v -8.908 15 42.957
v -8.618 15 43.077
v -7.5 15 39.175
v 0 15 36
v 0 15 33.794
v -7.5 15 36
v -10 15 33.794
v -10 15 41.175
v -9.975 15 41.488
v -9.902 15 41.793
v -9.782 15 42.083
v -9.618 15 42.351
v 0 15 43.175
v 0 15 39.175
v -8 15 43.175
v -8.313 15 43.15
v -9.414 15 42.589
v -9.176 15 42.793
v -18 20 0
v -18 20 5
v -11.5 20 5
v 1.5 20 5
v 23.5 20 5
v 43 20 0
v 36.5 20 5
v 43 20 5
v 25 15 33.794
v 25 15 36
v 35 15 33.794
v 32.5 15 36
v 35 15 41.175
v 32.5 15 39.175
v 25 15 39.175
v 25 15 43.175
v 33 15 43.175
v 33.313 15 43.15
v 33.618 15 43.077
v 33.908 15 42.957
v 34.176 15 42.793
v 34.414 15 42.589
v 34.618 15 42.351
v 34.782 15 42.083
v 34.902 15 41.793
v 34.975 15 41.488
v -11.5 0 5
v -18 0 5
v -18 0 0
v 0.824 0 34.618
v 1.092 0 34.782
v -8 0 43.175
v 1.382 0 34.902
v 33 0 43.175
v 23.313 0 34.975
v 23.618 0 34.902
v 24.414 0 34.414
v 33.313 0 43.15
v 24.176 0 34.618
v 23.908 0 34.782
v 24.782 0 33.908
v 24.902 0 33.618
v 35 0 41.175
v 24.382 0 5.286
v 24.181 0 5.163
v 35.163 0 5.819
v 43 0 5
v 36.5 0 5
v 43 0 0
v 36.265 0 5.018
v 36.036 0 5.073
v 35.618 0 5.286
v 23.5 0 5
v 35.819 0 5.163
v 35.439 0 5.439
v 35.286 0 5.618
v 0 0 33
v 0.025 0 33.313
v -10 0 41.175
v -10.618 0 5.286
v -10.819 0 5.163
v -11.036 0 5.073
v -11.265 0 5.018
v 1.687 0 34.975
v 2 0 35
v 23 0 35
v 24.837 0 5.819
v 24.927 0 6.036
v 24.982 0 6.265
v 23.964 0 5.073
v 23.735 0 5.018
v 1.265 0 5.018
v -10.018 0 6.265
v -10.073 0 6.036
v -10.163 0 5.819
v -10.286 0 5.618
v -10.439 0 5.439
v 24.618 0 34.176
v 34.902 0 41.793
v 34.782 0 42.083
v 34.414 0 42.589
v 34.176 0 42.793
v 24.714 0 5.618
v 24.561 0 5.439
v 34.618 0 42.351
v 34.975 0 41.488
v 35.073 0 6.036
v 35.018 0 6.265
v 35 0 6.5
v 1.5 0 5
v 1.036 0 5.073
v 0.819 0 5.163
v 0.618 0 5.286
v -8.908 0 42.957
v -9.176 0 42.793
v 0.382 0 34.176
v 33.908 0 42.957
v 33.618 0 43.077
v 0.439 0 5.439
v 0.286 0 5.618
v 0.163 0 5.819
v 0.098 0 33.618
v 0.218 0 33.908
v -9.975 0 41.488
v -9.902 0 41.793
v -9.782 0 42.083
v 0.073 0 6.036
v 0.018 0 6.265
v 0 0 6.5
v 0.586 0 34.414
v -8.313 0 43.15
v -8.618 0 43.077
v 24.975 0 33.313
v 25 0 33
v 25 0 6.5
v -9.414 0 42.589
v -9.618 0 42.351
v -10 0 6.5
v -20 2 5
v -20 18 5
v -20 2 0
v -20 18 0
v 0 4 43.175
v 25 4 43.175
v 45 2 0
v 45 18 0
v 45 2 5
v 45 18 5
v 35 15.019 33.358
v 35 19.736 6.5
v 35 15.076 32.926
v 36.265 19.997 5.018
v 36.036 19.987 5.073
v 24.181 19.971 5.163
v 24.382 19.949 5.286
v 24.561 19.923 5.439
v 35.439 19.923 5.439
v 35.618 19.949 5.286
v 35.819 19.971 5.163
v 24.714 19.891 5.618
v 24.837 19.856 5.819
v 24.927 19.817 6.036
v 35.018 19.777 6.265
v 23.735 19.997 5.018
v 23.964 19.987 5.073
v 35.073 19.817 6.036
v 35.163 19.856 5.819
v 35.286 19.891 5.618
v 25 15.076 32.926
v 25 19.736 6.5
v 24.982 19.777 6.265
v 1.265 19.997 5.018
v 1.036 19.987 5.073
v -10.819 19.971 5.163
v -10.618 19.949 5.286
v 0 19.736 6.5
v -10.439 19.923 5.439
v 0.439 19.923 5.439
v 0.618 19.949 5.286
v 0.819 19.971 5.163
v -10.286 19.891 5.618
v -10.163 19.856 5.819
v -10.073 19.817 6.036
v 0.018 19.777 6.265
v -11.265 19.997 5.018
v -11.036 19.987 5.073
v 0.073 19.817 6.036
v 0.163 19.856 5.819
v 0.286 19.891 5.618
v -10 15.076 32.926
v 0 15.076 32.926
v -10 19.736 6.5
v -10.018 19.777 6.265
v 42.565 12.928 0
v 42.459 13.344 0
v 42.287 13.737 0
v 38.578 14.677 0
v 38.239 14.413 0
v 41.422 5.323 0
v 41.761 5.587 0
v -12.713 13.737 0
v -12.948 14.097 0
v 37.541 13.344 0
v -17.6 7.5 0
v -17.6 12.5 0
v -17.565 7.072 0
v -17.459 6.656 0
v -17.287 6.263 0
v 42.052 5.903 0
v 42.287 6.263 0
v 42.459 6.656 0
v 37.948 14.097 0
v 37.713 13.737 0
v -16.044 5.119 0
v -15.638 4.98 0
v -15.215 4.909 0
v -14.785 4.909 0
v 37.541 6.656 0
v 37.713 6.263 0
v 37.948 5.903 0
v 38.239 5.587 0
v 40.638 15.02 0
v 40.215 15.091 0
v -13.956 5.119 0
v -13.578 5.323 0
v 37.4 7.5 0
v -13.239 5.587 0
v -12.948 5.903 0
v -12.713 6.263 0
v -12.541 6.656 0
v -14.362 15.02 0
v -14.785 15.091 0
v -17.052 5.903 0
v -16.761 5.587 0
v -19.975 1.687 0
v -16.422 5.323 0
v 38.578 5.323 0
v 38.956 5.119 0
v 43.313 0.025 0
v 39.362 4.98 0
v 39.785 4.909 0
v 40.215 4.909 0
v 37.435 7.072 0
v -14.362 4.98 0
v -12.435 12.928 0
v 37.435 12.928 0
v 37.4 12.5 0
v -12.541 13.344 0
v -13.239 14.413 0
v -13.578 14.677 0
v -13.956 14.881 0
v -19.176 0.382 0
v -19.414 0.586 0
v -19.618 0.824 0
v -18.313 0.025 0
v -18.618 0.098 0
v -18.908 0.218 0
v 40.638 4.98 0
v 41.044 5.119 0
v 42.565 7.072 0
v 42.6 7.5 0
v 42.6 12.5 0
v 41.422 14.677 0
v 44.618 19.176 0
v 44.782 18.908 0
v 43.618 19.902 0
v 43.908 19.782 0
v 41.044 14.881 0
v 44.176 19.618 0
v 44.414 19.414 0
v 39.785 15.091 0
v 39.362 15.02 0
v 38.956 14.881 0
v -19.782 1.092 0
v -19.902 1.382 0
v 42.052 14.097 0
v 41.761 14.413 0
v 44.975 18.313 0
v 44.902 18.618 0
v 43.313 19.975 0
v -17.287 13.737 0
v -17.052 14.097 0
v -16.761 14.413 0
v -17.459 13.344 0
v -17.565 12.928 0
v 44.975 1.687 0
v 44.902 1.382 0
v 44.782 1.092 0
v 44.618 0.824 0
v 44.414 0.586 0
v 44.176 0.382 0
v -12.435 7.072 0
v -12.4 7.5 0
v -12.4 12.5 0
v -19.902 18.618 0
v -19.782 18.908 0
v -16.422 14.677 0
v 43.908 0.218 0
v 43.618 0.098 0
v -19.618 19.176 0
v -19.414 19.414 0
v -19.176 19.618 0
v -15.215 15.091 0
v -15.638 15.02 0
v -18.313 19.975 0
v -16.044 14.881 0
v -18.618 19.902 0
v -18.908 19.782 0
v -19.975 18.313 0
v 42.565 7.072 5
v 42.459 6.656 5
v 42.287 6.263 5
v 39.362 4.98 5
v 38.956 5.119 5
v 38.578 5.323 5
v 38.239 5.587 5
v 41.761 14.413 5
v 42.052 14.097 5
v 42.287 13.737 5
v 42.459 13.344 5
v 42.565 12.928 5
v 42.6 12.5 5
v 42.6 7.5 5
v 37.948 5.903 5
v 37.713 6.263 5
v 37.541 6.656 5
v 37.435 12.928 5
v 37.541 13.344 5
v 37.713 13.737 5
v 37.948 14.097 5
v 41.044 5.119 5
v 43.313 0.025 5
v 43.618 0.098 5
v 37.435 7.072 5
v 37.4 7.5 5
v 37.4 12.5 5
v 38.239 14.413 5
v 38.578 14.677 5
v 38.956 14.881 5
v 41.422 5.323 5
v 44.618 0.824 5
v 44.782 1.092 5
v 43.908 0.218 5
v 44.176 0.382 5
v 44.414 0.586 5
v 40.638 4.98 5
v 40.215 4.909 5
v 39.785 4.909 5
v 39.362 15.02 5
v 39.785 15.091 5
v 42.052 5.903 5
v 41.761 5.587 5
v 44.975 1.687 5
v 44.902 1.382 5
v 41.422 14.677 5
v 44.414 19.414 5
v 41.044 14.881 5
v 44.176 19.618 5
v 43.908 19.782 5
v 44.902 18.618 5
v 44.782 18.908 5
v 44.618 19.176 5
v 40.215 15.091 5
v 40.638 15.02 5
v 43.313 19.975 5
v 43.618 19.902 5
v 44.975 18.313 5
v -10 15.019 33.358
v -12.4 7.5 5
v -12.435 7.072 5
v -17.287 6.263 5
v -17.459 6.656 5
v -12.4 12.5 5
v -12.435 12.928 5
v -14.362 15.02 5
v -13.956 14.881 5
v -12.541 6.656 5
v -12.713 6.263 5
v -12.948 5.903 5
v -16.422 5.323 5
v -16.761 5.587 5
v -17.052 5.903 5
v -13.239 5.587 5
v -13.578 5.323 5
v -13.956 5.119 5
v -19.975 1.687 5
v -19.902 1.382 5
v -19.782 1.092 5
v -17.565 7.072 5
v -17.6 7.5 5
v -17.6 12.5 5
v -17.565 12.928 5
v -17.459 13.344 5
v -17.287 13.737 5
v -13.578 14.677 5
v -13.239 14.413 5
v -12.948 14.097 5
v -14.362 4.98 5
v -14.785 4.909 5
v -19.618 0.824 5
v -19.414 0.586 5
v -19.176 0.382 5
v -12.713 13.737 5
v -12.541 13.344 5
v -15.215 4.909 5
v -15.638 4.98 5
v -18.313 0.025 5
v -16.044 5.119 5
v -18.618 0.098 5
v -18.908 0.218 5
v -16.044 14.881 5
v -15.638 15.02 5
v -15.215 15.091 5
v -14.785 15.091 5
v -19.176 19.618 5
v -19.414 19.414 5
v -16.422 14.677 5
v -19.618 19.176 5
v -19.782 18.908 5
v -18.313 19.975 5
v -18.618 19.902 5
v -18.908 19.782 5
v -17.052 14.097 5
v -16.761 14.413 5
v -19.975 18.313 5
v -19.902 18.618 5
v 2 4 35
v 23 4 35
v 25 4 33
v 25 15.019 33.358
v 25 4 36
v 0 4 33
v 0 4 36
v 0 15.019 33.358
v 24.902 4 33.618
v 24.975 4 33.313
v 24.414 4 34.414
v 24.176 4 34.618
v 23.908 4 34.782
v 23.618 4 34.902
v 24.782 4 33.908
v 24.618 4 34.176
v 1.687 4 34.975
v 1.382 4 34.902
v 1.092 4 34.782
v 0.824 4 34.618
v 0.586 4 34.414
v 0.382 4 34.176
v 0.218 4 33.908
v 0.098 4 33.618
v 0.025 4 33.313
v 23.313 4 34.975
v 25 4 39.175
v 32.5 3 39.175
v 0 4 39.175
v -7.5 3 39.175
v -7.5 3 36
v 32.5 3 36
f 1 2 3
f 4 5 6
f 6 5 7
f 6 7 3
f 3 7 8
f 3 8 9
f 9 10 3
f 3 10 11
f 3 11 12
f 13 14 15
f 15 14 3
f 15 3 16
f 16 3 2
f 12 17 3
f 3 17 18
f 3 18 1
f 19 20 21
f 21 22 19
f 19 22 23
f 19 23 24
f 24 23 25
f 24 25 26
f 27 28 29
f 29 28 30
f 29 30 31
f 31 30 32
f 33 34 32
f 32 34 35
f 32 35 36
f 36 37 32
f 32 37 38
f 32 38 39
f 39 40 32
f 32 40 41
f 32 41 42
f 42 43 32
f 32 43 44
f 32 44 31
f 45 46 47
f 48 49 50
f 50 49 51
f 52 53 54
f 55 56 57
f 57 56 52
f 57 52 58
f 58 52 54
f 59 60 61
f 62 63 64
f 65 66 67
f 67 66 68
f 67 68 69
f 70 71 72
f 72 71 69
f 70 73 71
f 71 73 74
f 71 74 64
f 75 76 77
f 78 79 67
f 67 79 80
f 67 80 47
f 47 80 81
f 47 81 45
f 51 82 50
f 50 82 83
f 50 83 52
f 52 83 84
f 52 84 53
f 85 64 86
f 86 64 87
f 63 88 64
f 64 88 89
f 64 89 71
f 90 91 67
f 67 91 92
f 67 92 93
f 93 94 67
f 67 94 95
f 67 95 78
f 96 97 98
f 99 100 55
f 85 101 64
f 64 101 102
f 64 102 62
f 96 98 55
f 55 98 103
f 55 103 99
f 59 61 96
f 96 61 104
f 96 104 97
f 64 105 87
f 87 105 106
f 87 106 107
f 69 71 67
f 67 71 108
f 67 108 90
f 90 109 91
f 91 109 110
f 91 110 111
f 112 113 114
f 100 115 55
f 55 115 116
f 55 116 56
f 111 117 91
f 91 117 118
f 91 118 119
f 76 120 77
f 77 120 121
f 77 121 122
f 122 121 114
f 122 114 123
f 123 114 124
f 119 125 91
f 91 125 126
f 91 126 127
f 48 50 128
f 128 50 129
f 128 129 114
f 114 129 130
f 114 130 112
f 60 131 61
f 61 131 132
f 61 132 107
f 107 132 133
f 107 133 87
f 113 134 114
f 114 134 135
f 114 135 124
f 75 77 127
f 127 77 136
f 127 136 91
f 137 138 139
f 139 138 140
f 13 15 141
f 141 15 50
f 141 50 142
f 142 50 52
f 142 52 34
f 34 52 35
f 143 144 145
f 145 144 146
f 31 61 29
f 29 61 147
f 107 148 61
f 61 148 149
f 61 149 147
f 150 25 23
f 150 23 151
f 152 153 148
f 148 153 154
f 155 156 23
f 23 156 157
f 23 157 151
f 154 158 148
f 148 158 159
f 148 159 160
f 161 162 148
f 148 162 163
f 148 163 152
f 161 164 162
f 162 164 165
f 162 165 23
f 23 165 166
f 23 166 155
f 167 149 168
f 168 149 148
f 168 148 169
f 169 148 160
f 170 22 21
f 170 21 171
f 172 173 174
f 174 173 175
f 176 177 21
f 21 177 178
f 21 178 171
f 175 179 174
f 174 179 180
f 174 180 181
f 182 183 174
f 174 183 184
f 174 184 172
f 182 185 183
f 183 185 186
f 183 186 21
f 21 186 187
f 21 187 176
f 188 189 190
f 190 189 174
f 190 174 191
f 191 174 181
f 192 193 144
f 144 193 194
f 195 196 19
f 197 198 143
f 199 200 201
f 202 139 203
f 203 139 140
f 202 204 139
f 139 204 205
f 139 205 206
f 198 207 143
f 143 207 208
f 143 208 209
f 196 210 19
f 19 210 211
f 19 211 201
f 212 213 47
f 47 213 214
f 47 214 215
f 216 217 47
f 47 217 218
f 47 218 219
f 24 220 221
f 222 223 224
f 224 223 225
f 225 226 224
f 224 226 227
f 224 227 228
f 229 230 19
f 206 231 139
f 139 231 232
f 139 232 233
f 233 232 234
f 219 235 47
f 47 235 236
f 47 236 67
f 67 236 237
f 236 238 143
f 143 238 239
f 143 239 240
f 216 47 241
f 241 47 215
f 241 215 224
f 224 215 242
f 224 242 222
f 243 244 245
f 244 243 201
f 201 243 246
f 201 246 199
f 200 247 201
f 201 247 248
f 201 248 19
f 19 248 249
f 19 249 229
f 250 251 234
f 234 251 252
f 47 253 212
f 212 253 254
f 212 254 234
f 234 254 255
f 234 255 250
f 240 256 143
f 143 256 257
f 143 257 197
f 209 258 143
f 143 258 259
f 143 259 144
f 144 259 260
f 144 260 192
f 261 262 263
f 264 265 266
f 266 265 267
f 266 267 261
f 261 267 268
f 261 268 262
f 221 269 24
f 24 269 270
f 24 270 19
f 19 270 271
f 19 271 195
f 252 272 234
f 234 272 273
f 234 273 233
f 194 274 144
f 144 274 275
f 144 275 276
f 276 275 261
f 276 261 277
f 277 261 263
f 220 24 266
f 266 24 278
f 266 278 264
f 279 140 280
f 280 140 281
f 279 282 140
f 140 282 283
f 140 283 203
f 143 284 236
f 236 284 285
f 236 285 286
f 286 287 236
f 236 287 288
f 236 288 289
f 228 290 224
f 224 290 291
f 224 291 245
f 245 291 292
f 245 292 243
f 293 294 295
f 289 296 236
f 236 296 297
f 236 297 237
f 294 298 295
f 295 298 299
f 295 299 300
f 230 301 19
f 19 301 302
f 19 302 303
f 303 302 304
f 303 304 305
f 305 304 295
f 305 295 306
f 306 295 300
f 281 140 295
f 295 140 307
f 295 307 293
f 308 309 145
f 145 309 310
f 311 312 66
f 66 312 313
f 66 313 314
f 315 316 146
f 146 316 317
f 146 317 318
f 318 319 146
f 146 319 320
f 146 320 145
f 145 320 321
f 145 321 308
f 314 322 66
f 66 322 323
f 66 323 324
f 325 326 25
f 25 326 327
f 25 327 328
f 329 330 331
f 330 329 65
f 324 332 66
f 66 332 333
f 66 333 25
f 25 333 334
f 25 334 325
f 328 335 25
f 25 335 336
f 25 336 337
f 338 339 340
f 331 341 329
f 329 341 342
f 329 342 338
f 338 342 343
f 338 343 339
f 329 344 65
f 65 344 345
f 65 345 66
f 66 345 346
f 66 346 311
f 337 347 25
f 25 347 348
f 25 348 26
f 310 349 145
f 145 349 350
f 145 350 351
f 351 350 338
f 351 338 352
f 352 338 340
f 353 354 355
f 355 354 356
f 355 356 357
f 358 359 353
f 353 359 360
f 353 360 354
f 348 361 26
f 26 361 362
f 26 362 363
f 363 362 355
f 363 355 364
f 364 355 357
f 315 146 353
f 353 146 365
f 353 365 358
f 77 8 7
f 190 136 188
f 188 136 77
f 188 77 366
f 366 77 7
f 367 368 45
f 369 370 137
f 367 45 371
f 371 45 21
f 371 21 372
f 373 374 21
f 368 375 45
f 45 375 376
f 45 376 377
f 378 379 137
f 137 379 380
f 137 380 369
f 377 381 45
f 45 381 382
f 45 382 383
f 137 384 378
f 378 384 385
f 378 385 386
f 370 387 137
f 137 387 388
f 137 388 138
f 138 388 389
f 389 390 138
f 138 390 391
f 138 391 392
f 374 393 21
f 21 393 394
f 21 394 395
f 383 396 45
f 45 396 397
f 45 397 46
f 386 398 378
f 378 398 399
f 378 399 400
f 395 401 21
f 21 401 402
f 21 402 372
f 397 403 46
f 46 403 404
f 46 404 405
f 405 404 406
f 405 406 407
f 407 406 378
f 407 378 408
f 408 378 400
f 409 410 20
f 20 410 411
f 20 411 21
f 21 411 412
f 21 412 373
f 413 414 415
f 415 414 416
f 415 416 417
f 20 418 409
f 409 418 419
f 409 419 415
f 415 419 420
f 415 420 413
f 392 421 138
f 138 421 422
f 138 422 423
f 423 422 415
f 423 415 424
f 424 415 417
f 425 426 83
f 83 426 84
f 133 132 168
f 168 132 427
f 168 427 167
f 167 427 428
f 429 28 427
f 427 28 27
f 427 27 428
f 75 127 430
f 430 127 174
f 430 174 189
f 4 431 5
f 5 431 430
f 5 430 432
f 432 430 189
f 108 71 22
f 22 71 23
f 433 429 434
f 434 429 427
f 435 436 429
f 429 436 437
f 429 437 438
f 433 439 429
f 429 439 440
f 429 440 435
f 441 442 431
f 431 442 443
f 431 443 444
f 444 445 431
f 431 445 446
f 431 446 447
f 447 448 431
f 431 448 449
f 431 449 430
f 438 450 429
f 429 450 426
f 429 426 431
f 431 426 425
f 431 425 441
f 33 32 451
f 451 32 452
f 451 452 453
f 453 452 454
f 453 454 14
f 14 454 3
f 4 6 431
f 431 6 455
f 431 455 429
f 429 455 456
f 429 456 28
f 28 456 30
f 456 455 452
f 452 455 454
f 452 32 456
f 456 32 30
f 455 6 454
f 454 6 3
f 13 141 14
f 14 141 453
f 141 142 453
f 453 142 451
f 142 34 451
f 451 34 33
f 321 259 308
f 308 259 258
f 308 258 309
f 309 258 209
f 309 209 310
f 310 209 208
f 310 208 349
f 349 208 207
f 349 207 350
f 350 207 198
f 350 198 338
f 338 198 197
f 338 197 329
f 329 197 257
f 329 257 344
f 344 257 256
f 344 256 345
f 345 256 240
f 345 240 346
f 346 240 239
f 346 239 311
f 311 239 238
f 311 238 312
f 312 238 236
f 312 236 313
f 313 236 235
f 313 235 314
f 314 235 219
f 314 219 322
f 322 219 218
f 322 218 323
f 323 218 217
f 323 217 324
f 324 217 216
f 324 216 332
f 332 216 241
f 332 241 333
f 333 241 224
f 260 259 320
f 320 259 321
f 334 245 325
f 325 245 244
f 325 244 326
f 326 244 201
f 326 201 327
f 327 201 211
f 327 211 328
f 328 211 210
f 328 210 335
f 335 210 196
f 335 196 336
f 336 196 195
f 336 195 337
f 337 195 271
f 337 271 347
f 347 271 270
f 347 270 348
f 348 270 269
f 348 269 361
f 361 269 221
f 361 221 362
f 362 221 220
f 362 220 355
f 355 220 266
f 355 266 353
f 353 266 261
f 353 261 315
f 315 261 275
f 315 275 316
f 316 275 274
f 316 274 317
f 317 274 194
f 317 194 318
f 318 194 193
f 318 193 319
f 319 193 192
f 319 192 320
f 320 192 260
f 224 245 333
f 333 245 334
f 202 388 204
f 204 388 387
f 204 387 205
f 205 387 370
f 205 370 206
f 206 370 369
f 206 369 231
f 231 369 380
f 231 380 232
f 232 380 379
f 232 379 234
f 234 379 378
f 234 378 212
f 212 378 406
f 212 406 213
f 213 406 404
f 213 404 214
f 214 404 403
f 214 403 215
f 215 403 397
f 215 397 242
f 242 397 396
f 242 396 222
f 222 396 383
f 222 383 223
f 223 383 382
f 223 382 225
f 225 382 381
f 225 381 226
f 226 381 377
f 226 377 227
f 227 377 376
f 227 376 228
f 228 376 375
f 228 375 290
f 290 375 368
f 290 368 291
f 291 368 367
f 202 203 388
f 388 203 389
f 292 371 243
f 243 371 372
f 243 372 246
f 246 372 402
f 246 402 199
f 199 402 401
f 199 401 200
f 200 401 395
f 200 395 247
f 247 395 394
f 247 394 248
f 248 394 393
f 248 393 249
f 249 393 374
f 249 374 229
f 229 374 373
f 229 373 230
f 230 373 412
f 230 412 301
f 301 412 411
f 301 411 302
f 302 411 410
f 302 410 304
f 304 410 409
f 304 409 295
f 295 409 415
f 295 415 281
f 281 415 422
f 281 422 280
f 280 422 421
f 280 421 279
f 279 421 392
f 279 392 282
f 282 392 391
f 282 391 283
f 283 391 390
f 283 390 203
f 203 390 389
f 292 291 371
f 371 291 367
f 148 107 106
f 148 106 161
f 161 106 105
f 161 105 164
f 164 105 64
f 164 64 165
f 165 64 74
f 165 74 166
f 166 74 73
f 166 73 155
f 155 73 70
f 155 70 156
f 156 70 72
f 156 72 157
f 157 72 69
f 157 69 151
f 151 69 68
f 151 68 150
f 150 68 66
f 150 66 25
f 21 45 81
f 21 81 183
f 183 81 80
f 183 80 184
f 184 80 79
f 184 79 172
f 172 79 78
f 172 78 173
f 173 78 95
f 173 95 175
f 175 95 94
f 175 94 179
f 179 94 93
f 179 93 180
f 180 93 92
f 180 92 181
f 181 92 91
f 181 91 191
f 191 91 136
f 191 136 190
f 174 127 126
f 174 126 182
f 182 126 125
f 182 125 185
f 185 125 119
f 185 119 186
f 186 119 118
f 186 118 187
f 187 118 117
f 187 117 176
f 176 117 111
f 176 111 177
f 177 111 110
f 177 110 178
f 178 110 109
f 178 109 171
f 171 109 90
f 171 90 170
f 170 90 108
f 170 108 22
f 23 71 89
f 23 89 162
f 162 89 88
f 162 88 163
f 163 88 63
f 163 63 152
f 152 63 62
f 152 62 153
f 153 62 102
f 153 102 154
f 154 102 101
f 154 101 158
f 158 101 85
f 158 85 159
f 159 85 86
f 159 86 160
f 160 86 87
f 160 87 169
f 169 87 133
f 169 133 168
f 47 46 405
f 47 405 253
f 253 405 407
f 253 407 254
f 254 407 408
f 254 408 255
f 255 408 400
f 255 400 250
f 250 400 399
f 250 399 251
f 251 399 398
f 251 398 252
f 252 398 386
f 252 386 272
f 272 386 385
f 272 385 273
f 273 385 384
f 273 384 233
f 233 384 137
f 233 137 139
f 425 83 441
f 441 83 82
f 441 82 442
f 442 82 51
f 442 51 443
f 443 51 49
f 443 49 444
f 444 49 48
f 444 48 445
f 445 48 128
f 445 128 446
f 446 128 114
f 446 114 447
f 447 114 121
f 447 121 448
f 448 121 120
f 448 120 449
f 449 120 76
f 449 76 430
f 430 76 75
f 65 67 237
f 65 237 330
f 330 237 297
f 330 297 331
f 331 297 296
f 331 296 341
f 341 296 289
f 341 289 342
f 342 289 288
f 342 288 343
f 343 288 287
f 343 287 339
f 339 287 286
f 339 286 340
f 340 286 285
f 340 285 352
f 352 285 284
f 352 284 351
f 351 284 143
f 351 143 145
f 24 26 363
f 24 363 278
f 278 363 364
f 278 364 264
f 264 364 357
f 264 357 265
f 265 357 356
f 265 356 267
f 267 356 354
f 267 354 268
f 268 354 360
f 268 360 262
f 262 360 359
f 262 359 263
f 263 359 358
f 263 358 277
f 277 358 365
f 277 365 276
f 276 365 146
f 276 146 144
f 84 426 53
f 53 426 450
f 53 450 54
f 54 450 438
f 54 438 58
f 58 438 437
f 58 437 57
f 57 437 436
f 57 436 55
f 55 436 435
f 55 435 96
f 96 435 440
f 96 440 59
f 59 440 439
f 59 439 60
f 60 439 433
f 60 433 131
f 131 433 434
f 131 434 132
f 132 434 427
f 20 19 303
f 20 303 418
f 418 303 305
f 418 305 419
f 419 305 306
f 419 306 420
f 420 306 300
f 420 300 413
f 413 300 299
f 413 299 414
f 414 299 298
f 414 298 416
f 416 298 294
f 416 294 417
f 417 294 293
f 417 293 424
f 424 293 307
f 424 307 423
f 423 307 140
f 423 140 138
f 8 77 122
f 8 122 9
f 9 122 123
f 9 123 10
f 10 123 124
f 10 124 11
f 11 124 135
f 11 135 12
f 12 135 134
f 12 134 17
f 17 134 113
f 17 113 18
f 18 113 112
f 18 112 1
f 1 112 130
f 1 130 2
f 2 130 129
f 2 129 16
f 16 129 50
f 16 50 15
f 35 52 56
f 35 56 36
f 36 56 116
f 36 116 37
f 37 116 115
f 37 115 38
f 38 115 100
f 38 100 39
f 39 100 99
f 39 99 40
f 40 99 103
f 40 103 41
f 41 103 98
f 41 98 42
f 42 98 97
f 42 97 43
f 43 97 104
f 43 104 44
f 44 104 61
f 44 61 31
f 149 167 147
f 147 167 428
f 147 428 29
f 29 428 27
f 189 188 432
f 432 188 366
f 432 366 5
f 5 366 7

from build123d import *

# Parameters (mm, degrees)
BOSS_EXTRUDE1_DEPTH = 35
CUT_EXTRUDE1_DEPTH  = 25
SKETCH3_W           = 25
SKETCH3_H           = 28.356409098
BOSS_EXTRUDE2_DEPTH = 5
BOSS_EXTRUDE3_DEPTH = 10
SKETCH5_W           = 28.356409098
SKETCH5_H           = 20
BOSS_EXTRUDE4_DEPTH = 10
SKETCH6_W           = 55
SKETCH6_H           = 15
BOSS_EXTRUDE5_DEPTH = 9.818590902
SKETCH7_W           = 28.356409098
SKETCH7_H           = 20
BOSS_EXTRUDE6_DEPTH = 10
SKETCH8_W           = 65
SKETCH8_H           = 20
BOSS_EXTRUDE7_DEPTH = 5
SKETCH9_W           = 10
SKETCH9_H           = 20
CUT_EXTRUDE2_DEPTH  = 28.356409098
SKETCH10_W          = 9.818590902
SKETCH10_H          = 15
CUT_EXTRUDE3_DEPTH  = 10
SKETCH11_W          = 10
SKETCH11_H          = 20
CUT_EXTRUDE4_DEPTH  = 28.356409098
SKETCH12_W          = 15
SKETCH12_H          = 1.643590902
CUT_EXTRUDE5_DEPTH  = 25
SKETCH13_W          = 25
SKETCH13_H          = 20
CUT_EXTRUDE6_DEPTH  = 28.356409098
CUT_EXTRUDE7_REACH  = 64.926
SKETCH14_W          = 25
SKETCH14_H          = 11
SKETCH15_W          = 25
SKETCH15_H          = 3.175
CUT_EXTRUDE8_DEPTH  = 1
CUT_EXTRUDE9_REACH  = 72.854
SKETCH16_W          = 3.175
SKETCH16_H          = 12
CUT_EXTRUDE10_REACH = 72.854
SKETCH17_W          = 12
SKETCH17_H          = 3.175
CUT_EXTRUDE11_REACH = 67.491
SKETCH18_W          = 25
SKETCH18_H          = 11
CUT_EXTRUDE12_DEPTH = 66.491072865
CUT_EXTRUDE13_DEPTH = 63.308351166
FILLET1_R           = 1.5
FILLET2_R           = 2
FILLET3_R           = 5


with BuildPart() as part:
    # Boss-Extrude1: read off the stored shape, not the designer's step
    # Boss-Extrude1 outline → Boss-Extrude1 (new body)
    with BuildSketch(Plane.YZ):
        Polygon((0, 5), (20, 5), (15, 33.356409098), (0, 33.356409098), align=None)
    extrude(amount=BOSS_EXTRUDE1_DEPTH)

    # Sketch2 → Cut-Extrude1 (cut)
    with BuildSketch(Plane.ZY):
        Polygon((33.356409098, 15), (5, 20), (5, 15), align=None)
    extrude(amount=-CUT_EXTRUDE1_DEPTH, mode=Mode.SUBTRACT)

    # Sketch3 → Boss-Extrude2 (add)
    with BuildSketch(Plane(origin=(0, 15, 0), x_dir=(-1, 0, 0), z_dir=(0, 1, 0))):
        with Locations((-12.5, 19.178204549)):
            Rectangle(SKETCH3_W, SKETCH3_H)
    extrude(amount=BOSS_EXTRUDE2_DEPTH)

    # Sketch4 → Boss-Extrude3 (add)
    with BuildSketch(Plane.ZY):
        Polygon((5, 20), (33.356409098, 15), (33.356409098, 0), (5, 0), align=None)
    extrude(amount=BOSS_EXTRUDE3_DEPTH)

    # Sketch5 → Boss-Extrude4 (add)
    with BuildSketch(Plane.ZY.offset(10)):
        with Locations((19.178204549, 10)):
            Rectangle(SKETCH5_W, SKETCH5_H)
    extrude(amount=BOSS_EXTRUDE4_DEPTH)

    # Sketch6 → Boss-Extrude5 (add)
    with BuildSketch(Plane.XY.offset(33.356409098)):
        with Locations((7.5, 7.5)):
            Rectangle(SKETCH6_W, SKETCH6_H)
    extrude(amount=BOSS_EXTRUDE5_DEPTH)

    # Sketch7 → Boss-Extrude6 (add)
    with BuildSketch(Plane(origin=(35, 0, 0), x_dir=(0, 0, -1), z_dir=(1, 0, 0))):
        with Locations((-19.178204549, 10)):
            Rectangle(SKETCH7_W, SKETCH7_H)
    extrude(amount=BOSS_EXTRUDE6_DEPTH)

    # Sketch8 → Boss-Extrude7 (add)
    with BuildSketch(Plane(origin=(0, 0, 5), x_dir=(-1, 0, 0), z_dir=(0, 0, -1))):
        with Locations((-12.5, 10)):
            Rectangle(SKETCH8_W, SKETCH8_H)
    extrude(amount=BOSS_EXTRUDE7_DEPTH)

    # Sketch9 → Cut-Extrude2 (cut)
    with BuildSketch(Plane.XY.offset(33.356409098)):
        with Locations((40, 10)):
            Rectangle(SKETCH9_W, SKETCH9_H)
    extrude(amount=-CUT_EXTRUDE2_DEPTH, mode=Mode.SUBTRACT)

    # Sketch10 → Cut-Extrude3 (cut)
    with BuildSketch(Plane.ZY.offset(20)):
        with Locations((38.265704549, 7.5)):
            Rectangle(SKETCH10_W, SKETCH10_H)
    extrude(amount=-CUT_EXTRUDE3_DEPTH, mode=Mode.SUBTRACT)

    # Sketch11 → Cut-Extrude4 (cut)
    with BuildSketch(Plane.XY.offset(33.356409098)):
        with Locations((-15, 10)):
            Rectangle(SKETCH11_W, SKETCH11_H)
    extrude(amount=-CUT_EXTRUDE4_DEPTH, mode=Mode.SUBTRACT)

    # Sketch12 → Cut-Extrude5 (cut)
    with BuildSketch(Plane(origin=(0, 0, 0), x_dir=(0, -1, 0), z_dir=(-1, 0, 0))):
        with Locations((-7.5, 34.178204549)):
            Rectangle(SKETCH12_W, SKETCH12_H)
    extrude(amount=-CUT_EXTRUDE5_DEPTH, mode=Mode.SUBTRACT)

    # Sketch13 → Cut-Extrude6 (cut)
    with BuildSketch(Plane.XY.offset(33.356409098)):
        with Locations((12.5, 10)):
            Rectangle(SKETCH13_W, SKETCH13_H)
    extrude(amount=-CUT_EXTRUDE6_DEPTH, mode=Mode.SUBTRACT)

    # Sketch14 → Cut-Extrude7 (cut, up to next)
    with BuildSketch(Plane.XY.offset(39.175), mode=Mode.PRIVATE) as cut_extrude7_sk1:
        with Locations((12.5, 9.5)):
            Rectangle(SKETCH14_W, SKETCH14_H)
    cut_extrude7_tool1 = extrude(cut_extrude7_sk1.sketch, amount=-CUT_EXTRUDE7_REACH, mode=Mode.PRIVATE) & part.part
    add(cut_extrude7_tool1.solids().sort_by_distance((12.5, 9.5, 39.175))[0], mode=Mode.SUBTRACT)

    # Sketch15 → Cut-Extrude8 (cut)
    with BuildSketch(Plane(origin=(0, 4, 0), x_dir=(-1, 0, 0), z_dir=(0, 1, 0))):
        with Locations((-12.5, 37.5875)):
            Rectangle(SKETCH15_W, SKETCH15_H)
    extrude(amount=-CUT_EXTRUDE8_DEPTH, mode=Mode.SUBTRACT)

    # Sketch16 → Cut-Extrude9 (cut, up to next)
    with BuildSketch(Plane(origin=(32.5, 0, 0), x_dir=(0, 0, -1), z_dir=(1, 0, 0)), mode=Mode.PRIVATE) as cut_extrude9_sk1:
        with Locations((-37.5875, 9)):
            Rectangle(SKETCH16_W, SKETCH16_H)
    cut_extrude9_tool1 = extrude(cut_extrude9_sk1.sketch, amount=-CUT_EXTRUDE9_REACH, mode=Mode.PRIVATE) & part.part
    add(cut_extrude9_tool1.solids().sort_by_distance((32.5, 9, 37.5875))[0], mode=Mode.SUBTRACT)

    # Sketch17 → Cut-Extrude10 (cut, up to next)
    with BuildSketch(Plane(origin=(-7.5, 0, 0), x_dir=(0, -1, 0), z_dir=(-1, 0, 0)), mode=Mode.PRIVATE) as cut_extrude10_sk1:
        with Locations((-9, 37.5875)):
            Rectangle(SKETCH17_W, SKETCH17_H)
    cut_extrude10_tool1 = extrude(cut_extrude10_sk1.sketch, amount=-CUT_EXTRUDE10_REACH, mode=Mode.PRIVATE) & part.part
    add(cut_extrude10_tool1.solids().sort_by_distance((-7.5, 9, 37.5875))[0], mode=Mode.SUBTRACT)

    # Sketch18 → Cut-Extrude11 (cut, up to next)
    with BuildSketch(Plane.XY.offset(43.175), mode=Mode.PRIVATE) as cut_extrude11_sk1:
        with Locations((12.5, 9.5)):
            Rectangle(SKETCH18_W, SKETCH18_H)
    cut_extrude11_tool1 = extrude(cut_extrude11_sk1.sketch, amount=-CUT_EXTRUDE11_REACH, mode=Mode.PRIVATE) & part.part
    add(cut_extrude11_tool1.solids().sort_by_distance((12.5, 9.5, 43.175))[0], mode=Mode.SUBTRACT)

    # Sketch19 → Cut-Extrude12 (cut, through all)
    with BuildSketch(Plane(origin=(0, 0, 0), x_dir=(-1, 0, 0), z_dir=(0, 0, -1))):
        with BuildLine():
            Line((-37.4, 7.5), (-37.4, 12.5))
            ThreePointArc((-37.4, 12.5), (-40, 15.1), (-42.6, 12.5))
            Line((-42.6, 12.5), (-42.6, 7.5))
            ThreePointArc((-42.6, 7.5), (-40, 4.9), (-37.4, 7.5))
        make_face()
    extrude(amount=-CUT_EXTRUDE12_DEPTH, mode=Mode.SUBTRACT)

    # Sketch20 → Cut-Extrude13 (cut, through all)
    with BuildSketch(Plane.XY.offset(5)):
        with BuildLine():
            Line((-12.4, 7.5), (-12.4, 12.5))
            ThreePointArc((-12.4, 12.5), (-15, 15.1), (-17.6, 12.5))
            Line((-17.6, 12.5), (-17.6, 7.5))
            ThreePointArc((-17.6, 7.5), (-15, 4.9), (-12.4, 7.5))
        make_face()
    extrude(amount=-CUT_EXTRUDE13_DEPTH, mode=Mode.SUBTRACT)

    # Fillet1
    fillet1_edges = [part.edges().sort_by_distance(p)[0] for p in [
        (35, 10, 5),
        (-10, 10, 5),
        (0, 10, 5),
        (25, 10, 5),
    ]]
    fillet(fillet1_edges, radius=FILLET1_R)

    # Fillet2
    fillet2_edges = [part.edges().sort_by_distance(p)[0] for p in [
        (-20, 0, 2.5),
        (0, 2, 35),
        (45, 0, 2.5),
        (45, 20, 2.5),
        (25, 2, 35),
        (-20, 20, 2.5),
        (-10, 7.5, 43.175),
        (35, 7.5, 43.175),
    ]]
    fillet(fillet2_edges, radius=FILLET2_R)

    # Fillet3
    fillet3_edges = [part.edges().sort_by_distance(p)[0] for p in [
        (30, 15, 33.356409098),
        (-5, 15, 33.356409098),
    ]]
    fillet(fillet3_edges, radius=FILLET3_R)


solid = part.part
